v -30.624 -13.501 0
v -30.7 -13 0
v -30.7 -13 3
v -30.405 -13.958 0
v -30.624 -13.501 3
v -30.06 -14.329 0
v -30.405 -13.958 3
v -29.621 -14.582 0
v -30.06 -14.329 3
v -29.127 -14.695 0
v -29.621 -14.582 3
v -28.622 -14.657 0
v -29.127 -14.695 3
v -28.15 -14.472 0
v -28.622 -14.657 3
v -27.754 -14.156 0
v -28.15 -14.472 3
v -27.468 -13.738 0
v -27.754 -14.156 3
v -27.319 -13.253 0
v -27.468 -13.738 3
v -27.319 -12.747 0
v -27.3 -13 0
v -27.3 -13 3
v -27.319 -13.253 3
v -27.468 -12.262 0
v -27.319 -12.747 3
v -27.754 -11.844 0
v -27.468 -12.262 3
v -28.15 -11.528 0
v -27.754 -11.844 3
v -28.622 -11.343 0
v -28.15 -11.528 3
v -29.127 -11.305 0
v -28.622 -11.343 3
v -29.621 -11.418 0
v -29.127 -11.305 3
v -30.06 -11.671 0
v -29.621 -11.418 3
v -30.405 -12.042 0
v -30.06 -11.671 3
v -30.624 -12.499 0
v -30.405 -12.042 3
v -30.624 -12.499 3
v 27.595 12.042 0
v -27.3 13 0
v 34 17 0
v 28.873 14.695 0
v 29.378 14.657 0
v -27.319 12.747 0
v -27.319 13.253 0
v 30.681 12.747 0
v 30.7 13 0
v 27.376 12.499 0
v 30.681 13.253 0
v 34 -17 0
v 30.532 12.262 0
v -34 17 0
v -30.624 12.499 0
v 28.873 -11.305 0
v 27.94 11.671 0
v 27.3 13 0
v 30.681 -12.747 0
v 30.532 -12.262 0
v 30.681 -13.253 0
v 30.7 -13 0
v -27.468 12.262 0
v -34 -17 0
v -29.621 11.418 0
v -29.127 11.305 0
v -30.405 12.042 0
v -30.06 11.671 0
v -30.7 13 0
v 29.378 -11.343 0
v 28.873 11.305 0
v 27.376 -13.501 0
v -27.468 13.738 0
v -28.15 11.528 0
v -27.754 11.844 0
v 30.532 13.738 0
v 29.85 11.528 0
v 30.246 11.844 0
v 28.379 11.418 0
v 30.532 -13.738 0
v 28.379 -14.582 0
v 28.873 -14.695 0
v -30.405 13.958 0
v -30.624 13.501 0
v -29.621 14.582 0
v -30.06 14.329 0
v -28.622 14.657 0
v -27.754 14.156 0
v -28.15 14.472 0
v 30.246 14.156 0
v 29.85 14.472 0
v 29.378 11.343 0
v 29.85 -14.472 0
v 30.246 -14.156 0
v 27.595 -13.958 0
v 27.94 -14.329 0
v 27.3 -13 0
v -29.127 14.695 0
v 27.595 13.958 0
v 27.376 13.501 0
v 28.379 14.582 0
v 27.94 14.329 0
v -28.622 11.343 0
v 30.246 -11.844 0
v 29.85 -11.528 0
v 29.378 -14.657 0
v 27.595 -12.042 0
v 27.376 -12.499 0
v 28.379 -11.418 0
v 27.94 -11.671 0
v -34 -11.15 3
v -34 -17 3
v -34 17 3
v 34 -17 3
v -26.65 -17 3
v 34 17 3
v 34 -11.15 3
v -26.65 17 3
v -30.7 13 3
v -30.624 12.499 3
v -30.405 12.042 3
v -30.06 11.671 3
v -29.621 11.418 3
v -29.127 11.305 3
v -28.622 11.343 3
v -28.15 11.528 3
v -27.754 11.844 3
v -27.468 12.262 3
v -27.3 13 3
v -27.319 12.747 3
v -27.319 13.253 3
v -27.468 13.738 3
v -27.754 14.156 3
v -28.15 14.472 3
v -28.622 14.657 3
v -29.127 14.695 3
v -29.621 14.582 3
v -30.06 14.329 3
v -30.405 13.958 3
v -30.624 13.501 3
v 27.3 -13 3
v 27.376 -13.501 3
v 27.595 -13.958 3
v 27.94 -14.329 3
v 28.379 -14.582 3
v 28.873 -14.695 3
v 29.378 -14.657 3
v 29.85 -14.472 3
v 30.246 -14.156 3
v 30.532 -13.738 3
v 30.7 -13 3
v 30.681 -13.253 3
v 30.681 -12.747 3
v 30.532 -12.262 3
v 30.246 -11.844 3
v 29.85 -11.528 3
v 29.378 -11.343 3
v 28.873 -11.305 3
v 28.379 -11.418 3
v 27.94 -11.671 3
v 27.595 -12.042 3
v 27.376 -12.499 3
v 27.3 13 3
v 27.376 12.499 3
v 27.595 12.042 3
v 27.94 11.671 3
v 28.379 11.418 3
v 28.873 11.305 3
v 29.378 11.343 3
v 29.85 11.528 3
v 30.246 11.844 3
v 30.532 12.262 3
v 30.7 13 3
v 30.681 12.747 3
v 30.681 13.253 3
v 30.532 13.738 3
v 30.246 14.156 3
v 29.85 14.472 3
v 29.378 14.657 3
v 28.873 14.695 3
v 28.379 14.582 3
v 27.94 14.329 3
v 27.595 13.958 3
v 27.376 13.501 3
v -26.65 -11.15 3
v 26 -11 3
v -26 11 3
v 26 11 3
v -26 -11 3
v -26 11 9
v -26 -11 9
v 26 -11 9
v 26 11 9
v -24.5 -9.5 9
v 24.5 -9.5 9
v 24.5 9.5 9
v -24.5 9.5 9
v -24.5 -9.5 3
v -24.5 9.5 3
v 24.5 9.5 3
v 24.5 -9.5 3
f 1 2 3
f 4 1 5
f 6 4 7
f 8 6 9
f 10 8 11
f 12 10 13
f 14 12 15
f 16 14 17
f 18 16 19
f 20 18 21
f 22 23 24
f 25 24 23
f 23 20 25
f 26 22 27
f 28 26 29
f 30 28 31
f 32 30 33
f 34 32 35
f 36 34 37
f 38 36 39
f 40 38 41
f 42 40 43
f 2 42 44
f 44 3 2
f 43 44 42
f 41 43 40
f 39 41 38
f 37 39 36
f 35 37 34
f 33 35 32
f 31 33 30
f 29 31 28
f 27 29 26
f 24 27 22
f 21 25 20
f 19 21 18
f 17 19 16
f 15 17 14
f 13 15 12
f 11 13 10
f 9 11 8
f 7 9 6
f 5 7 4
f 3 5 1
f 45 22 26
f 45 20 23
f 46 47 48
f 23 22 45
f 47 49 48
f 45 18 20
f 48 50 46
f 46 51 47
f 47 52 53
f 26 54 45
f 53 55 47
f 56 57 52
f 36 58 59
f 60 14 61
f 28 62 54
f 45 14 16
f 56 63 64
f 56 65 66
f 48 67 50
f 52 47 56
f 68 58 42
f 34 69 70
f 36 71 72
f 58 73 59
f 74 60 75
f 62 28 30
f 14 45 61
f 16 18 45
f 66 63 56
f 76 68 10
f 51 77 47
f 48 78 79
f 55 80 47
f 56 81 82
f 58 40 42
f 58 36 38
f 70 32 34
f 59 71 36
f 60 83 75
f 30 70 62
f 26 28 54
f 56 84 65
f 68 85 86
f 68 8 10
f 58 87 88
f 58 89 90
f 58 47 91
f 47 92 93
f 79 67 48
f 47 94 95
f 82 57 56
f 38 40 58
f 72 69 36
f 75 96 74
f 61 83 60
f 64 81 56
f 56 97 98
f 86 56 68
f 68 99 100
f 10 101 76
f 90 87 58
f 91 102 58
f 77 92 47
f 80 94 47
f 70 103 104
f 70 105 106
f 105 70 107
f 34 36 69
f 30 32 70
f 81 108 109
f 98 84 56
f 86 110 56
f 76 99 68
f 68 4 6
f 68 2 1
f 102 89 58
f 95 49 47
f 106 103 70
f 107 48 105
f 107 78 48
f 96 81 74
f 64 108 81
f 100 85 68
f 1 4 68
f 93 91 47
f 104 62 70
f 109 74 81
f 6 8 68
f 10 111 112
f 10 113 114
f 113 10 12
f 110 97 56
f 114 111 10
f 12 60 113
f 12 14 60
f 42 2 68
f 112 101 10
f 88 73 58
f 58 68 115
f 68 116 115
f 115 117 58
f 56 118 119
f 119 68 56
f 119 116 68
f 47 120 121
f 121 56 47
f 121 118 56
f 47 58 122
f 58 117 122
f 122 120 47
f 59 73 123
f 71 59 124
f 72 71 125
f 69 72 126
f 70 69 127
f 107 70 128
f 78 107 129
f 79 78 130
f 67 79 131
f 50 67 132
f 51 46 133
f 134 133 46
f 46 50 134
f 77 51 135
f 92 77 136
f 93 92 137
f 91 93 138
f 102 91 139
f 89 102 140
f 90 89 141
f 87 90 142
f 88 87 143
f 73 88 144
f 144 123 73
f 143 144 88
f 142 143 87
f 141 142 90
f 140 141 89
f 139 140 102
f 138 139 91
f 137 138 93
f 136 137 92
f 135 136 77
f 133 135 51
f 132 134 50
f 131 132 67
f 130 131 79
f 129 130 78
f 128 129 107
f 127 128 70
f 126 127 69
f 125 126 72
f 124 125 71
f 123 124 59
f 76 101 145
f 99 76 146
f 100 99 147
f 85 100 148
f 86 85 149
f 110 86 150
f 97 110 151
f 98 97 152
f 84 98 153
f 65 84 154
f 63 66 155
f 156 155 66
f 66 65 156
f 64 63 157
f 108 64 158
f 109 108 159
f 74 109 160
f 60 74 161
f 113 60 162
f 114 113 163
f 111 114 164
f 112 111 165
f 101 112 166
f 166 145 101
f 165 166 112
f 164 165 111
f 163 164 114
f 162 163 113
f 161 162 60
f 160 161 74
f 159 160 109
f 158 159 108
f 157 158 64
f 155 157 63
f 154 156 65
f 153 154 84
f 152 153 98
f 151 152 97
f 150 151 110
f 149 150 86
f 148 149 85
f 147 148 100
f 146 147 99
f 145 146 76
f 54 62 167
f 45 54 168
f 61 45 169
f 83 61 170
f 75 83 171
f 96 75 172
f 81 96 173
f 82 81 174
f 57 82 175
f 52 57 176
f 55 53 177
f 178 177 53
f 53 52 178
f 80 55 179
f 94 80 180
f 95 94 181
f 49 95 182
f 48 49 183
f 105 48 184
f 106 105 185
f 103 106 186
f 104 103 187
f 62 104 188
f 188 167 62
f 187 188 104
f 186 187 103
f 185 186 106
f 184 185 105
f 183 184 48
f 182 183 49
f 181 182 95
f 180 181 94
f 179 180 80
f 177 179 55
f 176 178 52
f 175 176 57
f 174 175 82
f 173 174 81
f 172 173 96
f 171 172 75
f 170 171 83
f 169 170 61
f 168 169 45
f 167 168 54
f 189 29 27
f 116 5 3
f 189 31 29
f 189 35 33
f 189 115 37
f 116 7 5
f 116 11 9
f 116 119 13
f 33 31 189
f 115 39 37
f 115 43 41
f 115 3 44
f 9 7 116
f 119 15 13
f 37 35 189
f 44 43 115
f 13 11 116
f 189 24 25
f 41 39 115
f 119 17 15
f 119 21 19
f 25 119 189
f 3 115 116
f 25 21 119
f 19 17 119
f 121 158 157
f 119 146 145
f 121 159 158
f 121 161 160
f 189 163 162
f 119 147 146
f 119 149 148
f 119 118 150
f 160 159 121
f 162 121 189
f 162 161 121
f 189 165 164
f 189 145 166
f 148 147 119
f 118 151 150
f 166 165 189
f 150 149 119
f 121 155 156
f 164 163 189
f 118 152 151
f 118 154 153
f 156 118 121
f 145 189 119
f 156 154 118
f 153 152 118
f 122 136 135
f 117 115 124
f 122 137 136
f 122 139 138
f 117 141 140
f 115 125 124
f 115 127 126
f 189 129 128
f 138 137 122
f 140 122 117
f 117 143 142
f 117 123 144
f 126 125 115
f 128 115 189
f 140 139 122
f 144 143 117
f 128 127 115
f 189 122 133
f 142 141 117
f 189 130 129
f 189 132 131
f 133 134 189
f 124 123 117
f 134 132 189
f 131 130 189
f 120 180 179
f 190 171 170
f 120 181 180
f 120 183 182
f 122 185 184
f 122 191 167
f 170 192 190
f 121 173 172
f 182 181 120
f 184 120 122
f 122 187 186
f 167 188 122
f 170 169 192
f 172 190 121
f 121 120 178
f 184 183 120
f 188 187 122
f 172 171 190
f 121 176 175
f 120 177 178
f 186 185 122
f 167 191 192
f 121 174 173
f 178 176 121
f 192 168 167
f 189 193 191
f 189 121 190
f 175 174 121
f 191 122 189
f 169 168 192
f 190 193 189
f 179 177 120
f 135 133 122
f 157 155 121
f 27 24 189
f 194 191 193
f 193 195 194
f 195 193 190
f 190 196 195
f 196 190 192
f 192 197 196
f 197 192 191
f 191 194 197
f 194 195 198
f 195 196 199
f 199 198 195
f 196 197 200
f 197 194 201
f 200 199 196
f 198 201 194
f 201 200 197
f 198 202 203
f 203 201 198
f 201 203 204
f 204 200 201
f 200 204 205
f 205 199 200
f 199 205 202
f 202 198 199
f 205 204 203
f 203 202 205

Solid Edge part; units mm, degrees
sketch "Sketch1" plane through (0, 0, 0) normal (0, 0, 1) x (1, 0, 0)
  line L0 (-34, -17) -> (34, -17)
  line L1 (34, -17) -> (34, 17)
  line L2 (34, 17) -> (-34, 17)
  line L3 (-34, 17) -> (-34, -17)
  circle A0 centre (-29, -13) radius 1.7
  circle A1 centre (-29, 13) radius 1.7
  circle A2 centre (29, -13) radius 1.7
  circle A3 centre (29, 13) radius 1.7
extrude "Protrusion1" add sketch "Sketch1" along normal blind 3
sketch "Sketch2" plane through (0, 0, 3) normal (0, 0, 1) x (1, 0, 0)
  line L0 (-26, -11) -> (26, -11)
  line L1 (26, -11) -> (26, 11)
  line L2 (26, 11) -> (-26, 11)
  line L3 (-26, 11) -> (-26, -11)
  line L4 (-24.5, -9.5) -> (24.5, -9.5)
  line L5 (24.5, -9.5) -> (24.5, 9.5)
  line L6 (24.5, 9.5) -> (-24.5, 9.5)
  line L7 (-24.5, 9.5) -> (-24.5, -9.5)
extrude "ExtrudedProtrusion_2" add sketch "Sketch2" along normal blind 6
